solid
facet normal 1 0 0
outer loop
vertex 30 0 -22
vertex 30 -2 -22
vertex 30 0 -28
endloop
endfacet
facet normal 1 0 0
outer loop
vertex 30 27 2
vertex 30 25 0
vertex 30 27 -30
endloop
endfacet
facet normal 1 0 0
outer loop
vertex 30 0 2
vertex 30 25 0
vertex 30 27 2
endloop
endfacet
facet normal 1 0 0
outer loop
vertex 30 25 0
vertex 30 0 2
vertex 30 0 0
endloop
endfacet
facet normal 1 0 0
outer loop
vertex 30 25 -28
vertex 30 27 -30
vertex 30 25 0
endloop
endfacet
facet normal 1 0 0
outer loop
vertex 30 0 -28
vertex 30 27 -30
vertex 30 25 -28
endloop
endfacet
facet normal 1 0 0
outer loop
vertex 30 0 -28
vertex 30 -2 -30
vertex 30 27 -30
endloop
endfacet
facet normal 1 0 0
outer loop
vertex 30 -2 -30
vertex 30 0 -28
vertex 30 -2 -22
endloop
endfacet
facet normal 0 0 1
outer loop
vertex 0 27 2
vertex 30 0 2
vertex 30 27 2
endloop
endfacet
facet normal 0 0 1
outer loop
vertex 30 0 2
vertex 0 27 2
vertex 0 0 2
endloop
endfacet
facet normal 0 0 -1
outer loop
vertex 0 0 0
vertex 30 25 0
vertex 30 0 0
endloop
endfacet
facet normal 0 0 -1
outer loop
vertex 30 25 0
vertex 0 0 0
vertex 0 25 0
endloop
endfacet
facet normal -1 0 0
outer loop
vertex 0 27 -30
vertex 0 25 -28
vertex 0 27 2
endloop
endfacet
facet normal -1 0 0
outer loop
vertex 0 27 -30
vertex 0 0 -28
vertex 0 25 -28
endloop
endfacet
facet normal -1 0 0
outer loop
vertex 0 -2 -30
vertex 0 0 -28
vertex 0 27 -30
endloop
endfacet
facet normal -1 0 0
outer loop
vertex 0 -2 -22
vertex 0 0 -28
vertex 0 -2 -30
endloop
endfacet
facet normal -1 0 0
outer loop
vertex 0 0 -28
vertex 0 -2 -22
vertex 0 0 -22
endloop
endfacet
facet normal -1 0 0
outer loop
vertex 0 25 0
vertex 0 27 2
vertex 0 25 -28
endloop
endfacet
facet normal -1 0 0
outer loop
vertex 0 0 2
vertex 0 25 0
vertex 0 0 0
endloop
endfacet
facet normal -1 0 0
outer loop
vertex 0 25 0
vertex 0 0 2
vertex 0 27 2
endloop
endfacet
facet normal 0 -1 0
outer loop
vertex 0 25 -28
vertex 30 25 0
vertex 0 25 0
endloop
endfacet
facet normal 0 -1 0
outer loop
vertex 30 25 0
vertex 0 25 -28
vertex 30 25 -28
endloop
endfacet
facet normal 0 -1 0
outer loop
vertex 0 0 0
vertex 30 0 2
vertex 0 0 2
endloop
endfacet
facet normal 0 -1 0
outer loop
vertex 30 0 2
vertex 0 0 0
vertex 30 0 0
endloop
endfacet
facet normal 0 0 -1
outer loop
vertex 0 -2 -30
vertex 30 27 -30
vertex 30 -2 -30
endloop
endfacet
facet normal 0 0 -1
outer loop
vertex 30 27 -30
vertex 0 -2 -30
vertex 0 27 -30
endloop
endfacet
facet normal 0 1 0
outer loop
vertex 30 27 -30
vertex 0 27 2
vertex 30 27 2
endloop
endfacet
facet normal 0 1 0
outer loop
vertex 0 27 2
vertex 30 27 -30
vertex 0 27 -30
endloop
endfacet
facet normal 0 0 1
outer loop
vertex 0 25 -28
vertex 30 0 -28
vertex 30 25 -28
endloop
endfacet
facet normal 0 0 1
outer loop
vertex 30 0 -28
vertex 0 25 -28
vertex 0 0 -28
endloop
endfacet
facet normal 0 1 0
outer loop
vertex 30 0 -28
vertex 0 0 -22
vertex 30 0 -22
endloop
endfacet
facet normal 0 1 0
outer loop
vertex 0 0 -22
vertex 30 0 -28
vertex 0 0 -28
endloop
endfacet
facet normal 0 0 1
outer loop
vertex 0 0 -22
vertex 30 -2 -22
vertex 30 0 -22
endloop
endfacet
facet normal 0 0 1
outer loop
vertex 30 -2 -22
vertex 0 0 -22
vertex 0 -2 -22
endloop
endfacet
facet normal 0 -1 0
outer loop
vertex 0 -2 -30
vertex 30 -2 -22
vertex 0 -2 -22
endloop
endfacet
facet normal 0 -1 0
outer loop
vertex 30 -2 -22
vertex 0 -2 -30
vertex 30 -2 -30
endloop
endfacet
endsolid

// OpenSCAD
cube([30, 25, 2]);
translate([0, 25, -30]) cube([30, 2, 32]);
translate([0, 0, -30]) cube([30, 25, 2]);
translate([0, -2, -30]) cube([30, 2, 8]);
